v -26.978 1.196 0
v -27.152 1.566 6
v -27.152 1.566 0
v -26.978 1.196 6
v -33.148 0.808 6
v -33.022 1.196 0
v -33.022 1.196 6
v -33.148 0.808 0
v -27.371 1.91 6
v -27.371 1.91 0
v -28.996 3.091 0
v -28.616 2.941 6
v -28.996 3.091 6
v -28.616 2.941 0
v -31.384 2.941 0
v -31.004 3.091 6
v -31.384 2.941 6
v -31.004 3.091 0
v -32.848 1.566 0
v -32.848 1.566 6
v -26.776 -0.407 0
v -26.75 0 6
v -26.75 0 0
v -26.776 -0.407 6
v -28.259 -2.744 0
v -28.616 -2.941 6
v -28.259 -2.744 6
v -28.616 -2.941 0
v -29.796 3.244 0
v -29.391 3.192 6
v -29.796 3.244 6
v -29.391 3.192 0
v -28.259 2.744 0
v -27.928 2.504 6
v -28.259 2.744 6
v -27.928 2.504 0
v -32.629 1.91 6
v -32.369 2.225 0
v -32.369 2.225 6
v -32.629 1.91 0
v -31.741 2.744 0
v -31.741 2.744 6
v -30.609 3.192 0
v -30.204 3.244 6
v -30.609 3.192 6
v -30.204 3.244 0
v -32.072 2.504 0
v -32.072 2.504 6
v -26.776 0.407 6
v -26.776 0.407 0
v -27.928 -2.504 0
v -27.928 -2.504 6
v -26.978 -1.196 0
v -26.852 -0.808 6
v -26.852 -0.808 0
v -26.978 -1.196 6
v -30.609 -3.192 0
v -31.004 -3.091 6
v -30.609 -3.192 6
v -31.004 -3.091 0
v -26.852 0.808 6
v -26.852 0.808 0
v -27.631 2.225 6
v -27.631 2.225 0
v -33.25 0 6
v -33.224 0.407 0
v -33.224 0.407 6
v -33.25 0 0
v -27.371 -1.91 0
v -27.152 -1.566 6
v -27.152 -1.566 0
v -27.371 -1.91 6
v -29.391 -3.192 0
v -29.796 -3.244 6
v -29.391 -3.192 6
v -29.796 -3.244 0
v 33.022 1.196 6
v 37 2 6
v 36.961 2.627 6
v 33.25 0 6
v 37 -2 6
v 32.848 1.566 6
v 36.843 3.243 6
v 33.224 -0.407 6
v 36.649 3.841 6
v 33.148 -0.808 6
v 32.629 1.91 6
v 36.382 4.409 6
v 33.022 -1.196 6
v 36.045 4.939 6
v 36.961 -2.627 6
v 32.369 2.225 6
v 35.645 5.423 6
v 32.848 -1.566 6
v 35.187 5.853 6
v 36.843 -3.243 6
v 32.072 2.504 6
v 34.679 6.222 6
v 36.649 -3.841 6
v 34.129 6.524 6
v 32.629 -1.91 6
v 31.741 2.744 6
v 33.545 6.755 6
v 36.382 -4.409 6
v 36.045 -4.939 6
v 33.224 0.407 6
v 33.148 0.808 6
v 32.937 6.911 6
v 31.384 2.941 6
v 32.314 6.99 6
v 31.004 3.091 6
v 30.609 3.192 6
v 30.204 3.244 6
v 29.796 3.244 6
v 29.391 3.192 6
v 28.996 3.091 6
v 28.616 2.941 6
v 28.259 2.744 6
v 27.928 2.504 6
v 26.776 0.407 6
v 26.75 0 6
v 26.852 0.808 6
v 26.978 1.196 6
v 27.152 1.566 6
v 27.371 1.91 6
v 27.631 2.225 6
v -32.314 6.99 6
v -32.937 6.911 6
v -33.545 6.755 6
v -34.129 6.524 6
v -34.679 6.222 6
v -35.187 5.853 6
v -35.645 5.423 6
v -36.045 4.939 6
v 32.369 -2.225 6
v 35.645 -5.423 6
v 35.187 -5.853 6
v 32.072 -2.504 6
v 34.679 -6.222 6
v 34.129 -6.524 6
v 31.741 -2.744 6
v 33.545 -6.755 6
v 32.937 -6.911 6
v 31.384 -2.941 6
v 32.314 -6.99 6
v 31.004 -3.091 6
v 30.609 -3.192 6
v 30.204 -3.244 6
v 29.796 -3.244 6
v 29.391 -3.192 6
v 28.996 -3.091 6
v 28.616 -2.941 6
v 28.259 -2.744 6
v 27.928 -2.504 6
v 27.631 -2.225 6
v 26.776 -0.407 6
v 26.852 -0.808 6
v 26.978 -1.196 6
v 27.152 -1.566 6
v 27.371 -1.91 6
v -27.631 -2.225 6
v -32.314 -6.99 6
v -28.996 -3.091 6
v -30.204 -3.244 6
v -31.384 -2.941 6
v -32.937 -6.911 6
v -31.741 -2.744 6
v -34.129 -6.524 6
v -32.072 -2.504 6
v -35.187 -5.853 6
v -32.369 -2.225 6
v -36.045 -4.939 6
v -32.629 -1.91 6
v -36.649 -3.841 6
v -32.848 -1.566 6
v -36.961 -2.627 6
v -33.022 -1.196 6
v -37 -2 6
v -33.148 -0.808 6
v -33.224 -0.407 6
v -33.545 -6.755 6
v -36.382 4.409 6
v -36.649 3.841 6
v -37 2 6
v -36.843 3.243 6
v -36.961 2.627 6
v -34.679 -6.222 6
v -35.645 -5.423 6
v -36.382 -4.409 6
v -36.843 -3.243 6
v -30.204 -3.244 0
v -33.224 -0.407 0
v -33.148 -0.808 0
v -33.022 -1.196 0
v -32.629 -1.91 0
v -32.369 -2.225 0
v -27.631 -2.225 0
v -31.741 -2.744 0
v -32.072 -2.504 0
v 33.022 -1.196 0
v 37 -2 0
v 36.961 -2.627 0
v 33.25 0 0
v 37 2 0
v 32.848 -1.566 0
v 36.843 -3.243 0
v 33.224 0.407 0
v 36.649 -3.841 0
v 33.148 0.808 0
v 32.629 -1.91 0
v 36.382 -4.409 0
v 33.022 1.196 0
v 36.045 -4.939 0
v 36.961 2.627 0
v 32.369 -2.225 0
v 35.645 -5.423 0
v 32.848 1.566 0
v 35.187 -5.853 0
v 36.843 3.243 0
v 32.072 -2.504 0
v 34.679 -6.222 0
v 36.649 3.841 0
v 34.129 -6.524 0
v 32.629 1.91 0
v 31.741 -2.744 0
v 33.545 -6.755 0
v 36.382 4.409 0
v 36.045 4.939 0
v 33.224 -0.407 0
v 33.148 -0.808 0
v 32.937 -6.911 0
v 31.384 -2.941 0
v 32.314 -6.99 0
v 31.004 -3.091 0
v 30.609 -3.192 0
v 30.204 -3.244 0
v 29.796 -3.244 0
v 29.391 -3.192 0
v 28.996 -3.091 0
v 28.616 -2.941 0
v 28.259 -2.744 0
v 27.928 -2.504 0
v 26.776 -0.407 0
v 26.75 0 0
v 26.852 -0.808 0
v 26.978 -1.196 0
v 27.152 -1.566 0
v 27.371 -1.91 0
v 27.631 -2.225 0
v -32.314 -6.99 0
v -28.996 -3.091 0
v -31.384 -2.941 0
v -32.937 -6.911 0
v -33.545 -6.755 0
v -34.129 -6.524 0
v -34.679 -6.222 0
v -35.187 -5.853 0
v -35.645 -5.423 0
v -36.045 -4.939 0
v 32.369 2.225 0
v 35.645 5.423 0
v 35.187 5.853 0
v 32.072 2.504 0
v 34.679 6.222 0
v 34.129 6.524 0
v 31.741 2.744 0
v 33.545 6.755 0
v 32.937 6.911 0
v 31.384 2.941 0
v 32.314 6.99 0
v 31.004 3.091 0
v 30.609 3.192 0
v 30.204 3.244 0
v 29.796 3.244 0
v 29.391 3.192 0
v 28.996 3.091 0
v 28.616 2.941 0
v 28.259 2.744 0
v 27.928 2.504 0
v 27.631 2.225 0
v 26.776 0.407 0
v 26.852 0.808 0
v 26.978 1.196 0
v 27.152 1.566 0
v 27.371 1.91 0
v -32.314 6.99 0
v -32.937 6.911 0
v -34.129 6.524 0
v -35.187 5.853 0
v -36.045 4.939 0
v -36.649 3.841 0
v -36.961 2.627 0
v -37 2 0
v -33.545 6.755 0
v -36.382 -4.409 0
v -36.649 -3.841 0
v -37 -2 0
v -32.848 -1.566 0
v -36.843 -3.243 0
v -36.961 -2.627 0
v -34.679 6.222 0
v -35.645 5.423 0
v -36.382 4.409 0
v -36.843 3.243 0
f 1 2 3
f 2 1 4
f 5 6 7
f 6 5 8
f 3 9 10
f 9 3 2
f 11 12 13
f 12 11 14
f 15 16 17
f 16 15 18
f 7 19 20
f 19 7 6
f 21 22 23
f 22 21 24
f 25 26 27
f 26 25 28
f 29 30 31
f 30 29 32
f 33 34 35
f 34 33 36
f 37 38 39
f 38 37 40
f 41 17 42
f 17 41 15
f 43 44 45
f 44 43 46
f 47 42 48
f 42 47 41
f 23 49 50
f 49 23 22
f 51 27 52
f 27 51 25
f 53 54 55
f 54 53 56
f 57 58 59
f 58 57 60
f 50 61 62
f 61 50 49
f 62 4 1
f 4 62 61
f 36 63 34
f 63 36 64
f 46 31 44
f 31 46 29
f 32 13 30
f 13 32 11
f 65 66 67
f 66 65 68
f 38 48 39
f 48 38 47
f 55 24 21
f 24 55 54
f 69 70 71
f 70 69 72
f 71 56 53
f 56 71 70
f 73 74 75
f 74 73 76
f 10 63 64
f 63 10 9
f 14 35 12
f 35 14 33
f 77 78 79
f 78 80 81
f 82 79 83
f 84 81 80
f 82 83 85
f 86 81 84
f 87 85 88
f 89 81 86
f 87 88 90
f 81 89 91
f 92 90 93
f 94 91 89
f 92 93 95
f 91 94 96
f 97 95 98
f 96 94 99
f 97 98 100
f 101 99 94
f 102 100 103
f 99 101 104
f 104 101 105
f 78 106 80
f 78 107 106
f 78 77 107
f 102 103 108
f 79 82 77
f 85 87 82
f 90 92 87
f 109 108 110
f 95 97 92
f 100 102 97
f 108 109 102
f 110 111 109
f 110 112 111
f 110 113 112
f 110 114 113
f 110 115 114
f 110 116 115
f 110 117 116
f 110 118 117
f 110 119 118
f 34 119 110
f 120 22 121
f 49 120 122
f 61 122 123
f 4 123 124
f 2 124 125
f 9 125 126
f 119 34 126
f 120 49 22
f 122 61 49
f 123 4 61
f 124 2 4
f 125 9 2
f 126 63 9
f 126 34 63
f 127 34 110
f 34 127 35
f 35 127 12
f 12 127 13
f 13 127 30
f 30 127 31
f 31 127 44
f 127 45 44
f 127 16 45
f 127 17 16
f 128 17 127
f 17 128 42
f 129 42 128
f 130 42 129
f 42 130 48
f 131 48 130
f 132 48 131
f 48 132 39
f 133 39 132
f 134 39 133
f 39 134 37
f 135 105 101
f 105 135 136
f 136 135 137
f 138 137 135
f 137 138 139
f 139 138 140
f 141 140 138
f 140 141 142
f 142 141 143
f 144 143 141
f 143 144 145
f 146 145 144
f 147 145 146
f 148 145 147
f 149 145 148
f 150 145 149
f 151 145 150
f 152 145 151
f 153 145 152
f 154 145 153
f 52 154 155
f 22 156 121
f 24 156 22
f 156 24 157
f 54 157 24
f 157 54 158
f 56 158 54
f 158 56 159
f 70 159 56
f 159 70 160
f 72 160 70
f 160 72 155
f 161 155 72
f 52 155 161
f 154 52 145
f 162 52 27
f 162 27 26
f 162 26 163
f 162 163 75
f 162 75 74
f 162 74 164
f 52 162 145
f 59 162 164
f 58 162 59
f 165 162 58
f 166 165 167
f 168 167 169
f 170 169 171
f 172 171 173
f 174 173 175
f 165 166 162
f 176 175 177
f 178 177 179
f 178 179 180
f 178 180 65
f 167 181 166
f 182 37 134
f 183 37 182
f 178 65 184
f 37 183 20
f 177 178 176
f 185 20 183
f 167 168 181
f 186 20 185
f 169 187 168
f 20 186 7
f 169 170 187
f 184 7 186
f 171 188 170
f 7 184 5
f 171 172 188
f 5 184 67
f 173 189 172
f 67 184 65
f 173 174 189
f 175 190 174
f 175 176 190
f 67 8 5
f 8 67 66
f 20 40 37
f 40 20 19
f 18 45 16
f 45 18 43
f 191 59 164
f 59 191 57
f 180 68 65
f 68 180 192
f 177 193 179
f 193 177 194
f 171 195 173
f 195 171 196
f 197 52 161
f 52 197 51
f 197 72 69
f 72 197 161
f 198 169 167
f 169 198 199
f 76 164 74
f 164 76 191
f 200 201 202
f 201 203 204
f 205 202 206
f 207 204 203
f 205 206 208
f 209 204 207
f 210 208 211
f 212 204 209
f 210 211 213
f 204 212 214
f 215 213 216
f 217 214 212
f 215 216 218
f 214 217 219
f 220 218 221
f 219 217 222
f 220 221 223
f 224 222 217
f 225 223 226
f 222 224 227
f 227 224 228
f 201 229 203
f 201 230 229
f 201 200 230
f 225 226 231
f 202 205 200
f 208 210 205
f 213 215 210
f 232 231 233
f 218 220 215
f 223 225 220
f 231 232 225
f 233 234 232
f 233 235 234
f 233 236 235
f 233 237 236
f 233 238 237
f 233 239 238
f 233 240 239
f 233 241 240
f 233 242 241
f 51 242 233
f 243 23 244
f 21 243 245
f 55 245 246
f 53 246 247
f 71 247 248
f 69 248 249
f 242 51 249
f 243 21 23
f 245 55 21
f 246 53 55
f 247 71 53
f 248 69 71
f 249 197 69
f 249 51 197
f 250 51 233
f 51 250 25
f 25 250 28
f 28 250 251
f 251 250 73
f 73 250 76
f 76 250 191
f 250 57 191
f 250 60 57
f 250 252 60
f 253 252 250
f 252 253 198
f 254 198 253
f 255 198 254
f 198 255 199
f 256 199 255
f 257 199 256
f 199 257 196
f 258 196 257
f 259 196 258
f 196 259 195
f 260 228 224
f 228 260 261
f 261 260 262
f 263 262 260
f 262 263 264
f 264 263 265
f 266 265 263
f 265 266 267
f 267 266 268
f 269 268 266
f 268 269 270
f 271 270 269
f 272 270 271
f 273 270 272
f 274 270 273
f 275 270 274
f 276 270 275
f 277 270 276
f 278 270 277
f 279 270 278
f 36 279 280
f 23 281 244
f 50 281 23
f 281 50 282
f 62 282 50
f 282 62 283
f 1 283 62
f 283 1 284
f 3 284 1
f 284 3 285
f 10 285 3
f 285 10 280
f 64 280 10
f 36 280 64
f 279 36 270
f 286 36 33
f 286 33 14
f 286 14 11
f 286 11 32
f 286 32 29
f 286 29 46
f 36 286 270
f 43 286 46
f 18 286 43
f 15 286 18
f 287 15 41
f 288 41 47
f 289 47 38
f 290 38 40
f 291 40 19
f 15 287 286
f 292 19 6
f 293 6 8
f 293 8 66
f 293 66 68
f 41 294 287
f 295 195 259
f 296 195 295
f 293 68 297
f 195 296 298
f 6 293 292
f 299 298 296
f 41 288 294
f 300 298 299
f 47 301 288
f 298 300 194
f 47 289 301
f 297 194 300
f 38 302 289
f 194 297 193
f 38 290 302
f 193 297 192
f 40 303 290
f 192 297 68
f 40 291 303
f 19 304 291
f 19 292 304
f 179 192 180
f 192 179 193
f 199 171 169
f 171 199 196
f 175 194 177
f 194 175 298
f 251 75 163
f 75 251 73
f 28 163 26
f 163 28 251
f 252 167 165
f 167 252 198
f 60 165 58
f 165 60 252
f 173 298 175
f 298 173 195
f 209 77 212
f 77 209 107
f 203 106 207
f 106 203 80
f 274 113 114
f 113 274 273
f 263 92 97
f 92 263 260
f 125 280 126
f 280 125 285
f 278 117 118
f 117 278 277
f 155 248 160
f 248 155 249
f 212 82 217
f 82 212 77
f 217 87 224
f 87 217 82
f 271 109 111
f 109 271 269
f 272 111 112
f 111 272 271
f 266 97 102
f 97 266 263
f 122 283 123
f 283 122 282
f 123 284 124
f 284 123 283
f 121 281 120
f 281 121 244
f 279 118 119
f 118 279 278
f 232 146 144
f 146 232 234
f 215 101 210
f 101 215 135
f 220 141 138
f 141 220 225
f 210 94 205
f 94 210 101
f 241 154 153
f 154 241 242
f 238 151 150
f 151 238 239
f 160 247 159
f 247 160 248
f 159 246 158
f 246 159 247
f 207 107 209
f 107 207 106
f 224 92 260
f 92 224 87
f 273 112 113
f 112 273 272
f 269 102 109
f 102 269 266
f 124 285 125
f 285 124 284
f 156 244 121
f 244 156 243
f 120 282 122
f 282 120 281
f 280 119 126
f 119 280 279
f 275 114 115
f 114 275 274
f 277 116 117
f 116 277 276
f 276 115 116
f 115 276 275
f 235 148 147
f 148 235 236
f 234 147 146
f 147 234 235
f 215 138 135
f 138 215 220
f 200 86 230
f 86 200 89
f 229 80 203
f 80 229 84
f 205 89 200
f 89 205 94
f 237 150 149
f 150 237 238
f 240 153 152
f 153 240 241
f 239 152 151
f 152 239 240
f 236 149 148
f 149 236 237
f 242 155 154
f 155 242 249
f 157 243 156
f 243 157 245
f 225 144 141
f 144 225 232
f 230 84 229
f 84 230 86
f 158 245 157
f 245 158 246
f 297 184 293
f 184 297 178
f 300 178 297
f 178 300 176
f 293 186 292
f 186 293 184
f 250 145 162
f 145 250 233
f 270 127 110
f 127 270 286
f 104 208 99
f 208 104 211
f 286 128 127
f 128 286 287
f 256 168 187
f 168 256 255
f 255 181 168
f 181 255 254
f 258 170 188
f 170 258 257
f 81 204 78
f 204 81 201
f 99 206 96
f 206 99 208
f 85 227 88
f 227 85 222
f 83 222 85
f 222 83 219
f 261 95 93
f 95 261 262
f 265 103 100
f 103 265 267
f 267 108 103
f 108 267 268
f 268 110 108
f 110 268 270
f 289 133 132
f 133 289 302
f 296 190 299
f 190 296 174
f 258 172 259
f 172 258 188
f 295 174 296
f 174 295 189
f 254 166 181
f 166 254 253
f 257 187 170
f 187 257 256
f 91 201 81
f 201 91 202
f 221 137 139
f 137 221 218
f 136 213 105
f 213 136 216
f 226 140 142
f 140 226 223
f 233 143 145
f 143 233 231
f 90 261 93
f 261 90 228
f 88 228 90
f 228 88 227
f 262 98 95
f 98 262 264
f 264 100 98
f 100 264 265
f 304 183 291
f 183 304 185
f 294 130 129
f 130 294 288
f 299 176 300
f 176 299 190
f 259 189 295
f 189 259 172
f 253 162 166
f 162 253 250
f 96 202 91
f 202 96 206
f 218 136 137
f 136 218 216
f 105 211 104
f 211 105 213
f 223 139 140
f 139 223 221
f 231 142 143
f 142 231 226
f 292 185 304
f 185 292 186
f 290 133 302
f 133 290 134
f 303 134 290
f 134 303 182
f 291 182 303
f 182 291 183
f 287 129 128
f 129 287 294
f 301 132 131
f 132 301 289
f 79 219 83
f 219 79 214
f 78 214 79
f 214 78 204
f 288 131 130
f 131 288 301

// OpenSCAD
$fn = 50;


difference() {
	union() {
		hull() {
			translate(v = [-32.0000000000, 2.0000000000, 0]) {
				cylinder(h = 6, r = 5);
			}
			translate(v = [32.0000000000, 2.0000000000, 0]) {
				cylinder(h = 6, r = 5);
			}
			translate(v = [-32.0000000000, -2.0000000000, 0]) {
				cylinder(h = 6, r = 5);
			}
			translate(v = [32.0000000000, -2.0000000000, 0]) {
				cylinder(h = 6, r = 5);
			}
		}
	}
	union() {
		translate(v = [-30.0000000000, 0.0000000000, 0]) {
			cylinder(h = 6, r = 3.2500000000);
		}
		translate(v = [30.0000000000, 0.0000000000, 0]) {
			cylinder(h = 6, r = 3.2500000000);
		}
		translate(v = [-30.0000000000, 0.0000000000, 0]) {
			cylinder(h = 6, r = 1.8000000000);
		}
		translate(v = [30.0000000000, 0.0000000000, 0]) {
			cylinder(h = 6, r = 1.8000000000);
		}
		translate(v = [-30.0000000000, 0.0000000000, 0]) {
			cylinder(h = 6, r = 1.8000000000);
		}
		translate(v = [30.0000000000, 0.0000000000, 0]) {
			cylinder(h = 6, r = 1.8000000000);
		}
		translate(v = [-30.0000000000, 0.0000000000, 0]) {
			cylinder(h = 6, r = 1.8000000000);
		}
		translate(v = [30.0000000000, 0.0000000000, 0]) {
			cylinder(h = 6, r = 1.8000000000);
		}
	}
}
